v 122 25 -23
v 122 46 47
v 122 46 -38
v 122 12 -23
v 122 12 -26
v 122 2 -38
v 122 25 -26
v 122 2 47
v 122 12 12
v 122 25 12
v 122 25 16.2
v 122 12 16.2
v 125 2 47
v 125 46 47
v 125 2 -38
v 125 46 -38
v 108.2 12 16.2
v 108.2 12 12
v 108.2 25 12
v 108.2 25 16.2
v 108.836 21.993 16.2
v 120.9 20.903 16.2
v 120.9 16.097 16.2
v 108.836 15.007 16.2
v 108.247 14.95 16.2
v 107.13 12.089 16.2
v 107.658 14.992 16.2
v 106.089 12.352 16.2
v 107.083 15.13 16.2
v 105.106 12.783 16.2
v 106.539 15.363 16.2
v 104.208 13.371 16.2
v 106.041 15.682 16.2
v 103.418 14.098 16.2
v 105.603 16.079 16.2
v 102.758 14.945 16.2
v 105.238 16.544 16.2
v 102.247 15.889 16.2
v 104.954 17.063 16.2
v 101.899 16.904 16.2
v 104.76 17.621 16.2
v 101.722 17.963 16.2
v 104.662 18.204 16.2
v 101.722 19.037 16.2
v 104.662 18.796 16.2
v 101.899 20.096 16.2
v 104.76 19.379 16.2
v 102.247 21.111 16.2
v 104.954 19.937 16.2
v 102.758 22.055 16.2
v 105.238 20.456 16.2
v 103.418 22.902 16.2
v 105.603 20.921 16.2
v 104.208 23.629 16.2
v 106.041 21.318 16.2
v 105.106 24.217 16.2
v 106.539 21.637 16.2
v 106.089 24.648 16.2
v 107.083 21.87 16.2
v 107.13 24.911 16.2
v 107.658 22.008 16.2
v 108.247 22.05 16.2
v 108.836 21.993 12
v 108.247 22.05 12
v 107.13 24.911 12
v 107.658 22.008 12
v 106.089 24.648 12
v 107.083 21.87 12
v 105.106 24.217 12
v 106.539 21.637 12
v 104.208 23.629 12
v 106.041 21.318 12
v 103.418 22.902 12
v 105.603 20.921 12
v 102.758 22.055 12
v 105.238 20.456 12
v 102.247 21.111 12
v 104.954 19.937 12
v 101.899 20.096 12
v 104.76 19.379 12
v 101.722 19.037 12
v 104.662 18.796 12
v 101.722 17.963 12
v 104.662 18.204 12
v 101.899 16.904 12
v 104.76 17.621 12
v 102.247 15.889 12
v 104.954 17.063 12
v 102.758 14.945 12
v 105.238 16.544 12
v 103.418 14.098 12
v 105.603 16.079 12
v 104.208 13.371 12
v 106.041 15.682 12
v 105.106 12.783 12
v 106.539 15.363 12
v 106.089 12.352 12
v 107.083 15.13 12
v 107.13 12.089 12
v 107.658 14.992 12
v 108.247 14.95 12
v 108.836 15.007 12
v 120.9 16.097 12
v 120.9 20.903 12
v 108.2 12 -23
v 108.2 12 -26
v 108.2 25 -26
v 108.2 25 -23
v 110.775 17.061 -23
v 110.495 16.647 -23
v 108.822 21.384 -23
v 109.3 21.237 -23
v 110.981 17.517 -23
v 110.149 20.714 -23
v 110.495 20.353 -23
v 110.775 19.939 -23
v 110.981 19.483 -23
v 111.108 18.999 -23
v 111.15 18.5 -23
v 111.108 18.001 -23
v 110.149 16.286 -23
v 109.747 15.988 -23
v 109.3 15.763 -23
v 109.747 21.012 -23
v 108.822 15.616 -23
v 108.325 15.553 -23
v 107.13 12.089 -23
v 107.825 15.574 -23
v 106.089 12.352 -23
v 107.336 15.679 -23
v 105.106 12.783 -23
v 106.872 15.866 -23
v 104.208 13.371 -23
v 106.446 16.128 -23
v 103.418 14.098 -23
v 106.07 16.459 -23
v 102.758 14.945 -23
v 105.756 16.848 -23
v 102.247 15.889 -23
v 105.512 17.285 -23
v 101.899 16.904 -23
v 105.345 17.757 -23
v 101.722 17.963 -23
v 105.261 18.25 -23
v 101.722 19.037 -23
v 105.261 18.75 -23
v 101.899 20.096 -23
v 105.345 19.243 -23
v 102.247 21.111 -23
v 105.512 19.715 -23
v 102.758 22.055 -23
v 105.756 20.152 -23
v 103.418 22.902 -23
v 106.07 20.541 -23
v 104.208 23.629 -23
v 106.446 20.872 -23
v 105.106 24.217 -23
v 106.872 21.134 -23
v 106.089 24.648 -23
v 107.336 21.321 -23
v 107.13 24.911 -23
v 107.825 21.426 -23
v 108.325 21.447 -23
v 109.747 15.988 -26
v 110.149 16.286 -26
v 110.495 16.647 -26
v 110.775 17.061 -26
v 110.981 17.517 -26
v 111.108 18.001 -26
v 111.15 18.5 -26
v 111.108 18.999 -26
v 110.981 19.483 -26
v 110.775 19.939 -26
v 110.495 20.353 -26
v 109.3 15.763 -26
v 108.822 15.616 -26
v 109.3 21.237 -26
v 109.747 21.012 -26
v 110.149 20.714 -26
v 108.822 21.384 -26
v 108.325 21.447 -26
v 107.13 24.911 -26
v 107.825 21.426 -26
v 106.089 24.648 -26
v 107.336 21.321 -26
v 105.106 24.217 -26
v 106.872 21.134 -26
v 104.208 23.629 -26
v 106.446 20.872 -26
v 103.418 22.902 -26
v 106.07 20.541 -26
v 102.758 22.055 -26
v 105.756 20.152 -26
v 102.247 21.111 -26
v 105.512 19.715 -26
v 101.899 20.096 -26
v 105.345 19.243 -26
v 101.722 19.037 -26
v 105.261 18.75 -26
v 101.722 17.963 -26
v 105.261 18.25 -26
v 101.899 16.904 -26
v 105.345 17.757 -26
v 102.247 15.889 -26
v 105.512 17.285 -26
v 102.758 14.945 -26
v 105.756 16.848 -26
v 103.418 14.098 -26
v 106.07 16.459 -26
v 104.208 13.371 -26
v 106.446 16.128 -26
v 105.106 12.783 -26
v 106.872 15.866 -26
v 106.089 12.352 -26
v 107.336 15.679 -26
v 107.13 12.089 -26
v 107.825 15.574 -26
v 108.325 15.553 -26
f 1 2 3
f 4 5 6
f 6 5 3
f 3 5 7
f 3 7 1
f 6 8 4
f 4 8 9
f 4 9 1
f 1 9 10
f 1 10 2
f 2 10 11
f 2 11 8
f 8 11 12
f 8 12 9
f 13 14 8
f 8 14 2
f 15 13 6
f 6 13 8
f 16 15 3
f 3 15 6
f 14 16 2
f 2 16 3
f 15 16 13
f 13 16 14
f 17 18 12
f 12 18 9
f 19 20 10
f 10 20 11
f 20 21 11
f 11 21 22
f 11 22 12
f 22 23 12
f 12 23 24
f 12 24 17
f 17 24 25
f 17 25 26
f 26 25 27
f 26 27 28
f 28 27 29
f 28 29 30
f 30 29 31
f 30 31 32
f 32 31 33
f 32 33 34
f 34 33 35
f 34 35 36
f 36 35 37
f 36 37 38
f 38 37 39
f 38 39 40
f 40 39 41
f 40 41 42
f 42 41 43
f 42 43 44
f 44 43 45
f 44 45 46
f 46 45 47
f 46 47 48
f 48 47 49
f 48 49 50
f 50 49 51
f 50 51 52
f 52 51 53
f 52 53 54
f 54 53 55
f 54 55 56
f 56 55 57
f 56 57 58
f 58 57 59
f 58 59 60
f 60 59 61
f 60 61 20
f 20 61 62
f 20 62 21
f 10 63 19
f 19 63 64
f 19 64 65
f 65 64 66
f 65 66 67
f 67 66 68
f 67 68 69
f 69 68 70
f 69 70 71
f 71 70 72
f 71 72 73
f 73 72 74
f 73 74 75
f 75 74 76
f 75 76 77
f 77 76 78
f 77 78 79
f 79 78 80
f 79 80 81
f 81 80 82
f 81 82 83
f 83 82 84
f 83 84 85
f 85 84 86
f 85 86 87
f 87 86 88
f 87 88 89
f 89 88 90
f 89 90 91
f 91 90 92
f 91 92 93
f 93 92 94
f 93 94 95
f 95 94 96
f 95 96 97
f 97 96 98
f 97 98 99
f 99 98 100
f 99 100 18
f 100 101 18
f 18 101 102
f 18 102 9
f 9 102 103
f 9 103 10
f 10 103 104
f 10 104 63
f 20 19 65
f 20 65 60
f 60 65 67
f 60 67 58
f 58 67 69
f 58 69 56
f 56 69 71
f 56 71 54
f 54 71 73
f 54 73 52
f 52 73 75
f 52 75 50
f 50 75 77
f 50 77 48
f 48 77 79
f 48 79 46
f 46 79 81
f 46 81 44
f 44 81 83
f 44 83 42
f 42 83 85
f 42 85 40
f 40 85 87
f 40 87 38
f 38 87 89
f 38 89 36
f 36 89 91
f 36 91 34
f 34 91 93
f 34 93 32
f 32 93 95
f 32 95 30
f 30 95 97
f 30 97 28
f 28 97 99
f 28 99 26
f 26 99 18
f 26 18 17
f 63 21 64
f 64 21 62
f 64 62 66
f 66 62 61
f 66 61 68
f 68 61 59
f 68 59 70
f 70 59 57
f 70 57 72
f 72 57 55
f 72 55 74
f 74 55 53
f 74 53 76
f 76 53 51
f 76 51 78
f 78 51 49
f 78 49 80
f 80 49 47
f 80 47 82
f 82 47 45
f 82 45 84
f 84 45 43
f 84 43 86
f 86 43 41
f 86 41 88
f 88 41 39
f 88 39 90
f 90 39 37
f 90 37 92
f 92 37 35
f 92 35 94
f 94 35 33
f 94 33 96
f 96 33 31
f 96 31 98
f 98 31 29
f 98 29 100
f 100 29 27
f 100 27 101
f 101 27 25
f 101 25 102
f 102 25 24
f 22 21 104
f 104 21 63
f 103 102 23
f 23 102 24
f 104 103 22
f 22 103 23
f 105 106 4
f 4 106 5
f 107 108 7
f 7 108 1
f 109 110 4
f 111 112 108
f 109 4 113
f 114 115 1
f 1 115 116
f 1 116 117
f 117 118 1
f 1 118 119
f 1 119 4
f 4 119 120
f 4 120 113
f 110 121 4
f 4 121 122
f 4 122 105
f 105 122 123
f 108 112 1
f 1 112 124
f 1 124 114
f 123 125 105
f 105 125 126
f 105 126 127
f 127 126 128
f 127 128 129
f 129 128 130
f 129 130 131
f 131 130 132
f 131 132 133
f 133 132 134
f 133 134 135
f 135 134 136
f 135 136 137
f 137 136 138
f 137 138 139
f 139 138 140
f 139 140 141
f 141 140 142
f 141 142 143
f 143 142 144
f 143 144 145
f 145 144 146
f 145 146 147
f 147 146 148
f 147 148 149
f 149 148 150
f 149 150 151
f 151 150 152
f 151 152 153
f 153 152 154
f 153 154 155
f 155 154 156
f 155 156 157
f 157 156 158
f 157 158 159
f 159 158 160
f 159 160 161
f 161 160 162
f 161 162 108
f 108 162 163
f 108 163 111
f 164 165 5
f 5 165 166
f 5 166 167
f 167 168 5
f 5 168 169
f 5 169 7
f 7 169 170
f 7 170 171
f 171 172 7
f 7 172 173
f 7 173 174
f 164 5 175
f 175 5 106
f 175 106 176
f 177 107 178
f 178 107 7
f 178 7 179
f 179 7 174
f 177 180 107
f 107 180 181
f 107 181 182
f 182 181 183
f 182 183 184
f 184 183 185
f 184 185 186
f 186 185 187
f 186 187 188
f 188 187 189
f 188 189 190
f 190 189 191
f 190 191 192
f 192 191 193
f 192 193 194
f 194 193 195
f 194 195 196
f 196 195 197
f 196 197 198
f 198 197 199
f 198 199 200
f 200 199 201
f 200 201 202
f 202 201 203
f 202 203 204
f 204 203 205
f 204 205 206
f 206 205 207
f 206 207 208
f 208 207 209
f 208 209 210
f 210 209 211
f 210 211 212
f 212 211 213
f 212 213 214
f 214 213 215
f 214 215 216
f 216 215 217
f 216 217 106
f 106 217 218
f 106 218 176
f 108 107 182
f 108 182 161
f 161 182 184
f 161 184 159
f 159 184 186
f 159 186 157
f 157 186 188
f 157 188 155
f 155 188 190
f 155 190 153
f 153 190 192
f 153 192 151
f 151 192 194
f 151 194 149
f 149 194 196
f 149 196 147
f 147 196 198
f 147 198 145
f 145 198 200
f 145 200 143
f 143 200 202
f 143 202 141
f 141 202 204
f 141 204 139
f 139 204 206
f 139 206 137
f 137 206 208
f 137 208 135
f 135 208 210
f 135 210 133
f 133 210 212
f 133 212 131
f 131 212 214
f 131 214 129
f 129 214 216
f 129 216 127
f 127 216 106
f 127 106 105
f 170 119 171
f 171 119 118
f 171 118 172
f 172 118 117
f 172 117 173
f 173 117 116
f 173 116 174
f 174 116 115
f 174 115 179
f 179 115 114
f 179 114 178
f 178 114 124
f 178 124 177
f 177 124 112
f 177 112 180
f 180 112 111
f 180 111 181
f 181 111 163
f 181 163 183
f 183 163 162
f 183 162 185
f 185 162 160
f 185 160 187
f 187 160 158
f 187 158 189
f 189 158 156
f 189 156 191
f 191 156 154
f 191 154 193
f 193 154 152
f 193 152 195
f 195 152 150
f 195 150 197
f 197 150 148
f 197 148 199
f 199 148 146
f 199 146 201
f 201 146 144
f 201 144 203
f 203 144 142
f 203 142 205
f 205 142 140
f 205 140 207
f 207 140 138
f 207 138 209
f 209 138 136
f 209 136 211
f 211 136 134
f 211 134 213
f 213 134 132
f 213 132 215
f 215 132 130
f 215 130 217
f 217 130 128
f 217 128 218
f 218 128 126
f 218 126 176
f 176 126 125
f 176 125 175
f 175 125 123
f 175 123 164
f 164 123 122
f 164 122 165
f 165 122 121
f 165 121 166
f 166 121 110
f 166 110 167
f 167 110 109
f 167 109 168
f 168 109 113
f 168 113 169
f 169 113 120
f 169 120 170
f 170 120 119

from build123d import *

# Parameters (mm, degrees)
BOSS_EXTRUDE1_START = 123.5
SKETCH1_W           = 85
SKETCH1_H           = 44
BOSS_EXTRUDE1_DEPTH = 1.5
BOSS_EXTRUDE2_START = 14.1
SKETCH2_R           = 6.5
BOSS_EXTRUDE2_DEPTH = 2.1
BOSS_EXTRUDE3_START = 14.1
SKETCH3_W           = 14.3
SKETCH3_H           = 13
BOSS_EXTRUDE3_DEPTH = 2.1
CUT_EXTRUDE1_START  = 14.1
SKETCH4_R           = 3.55
CUT_EXTRUDE1_DEPTH  = 2.1
CUT_EXTRUDE2_START  = 14.1
CUT_EXTRUDE2_DEPTH  = 2.1
BOSS_EXTRUDE4_START = -24.5
SKETCH6_R           = 6.5
BOSS_EXTRUDE4_DEPTH = 1.5
BOSS_EXTRUDE5_START = -24.5
SKETCH7_W           = 14.3
SKETCH7_H           = 13
BOSS_EXTRUDE5_DEPTH = 1.5
CUT_EXTRUDE3_START  = -24.5
SKETCH8_R           = 2.95
CUT_EXTRUDE3_DEPTH  = 1.5


with BuildPart() as part:
    # Sketch1 → Boss-Extrude1 (new, symmetric)
    with BuildSketch(Plane(origin=(0, 0, 0), x_dir=(0, 0, -1), z_dir=(1, 0, 0)).offset(BOSS_EXTRUDE1_START)):
        with Locations((-4.5, 24)):
            Rectangle(SKETCH1_W, SKETCH1_H)
    extrude(amount=BOSS_EXTRUDE1_DEPTH, both=True)



with BuildPart() as body_2:
    # Sketch2 → Boss-Extrude2 (new, symmetric)
    with BuildSketch(Plane.XY.offset(BOSS_EXTRUDE2_START)):
        with Locations((108.2, 18.5)):
            Circle(SKETCH2_R)
    extrude(amount=BOSS_EXTRUDE2_DEPTH, both=True)


with BuildPart() as part_1:
    add(part.part)

    add(body_2.part)  # Boss-Extrude3 merges body 2
    # Sketch3 → Boss-Extrude3 (add, symmetric)
    with BuildSketch(Plane.XY.offset(BOSS_EXTRUDE3_START)):
        with Locations((115.35, 18.5)):
            Rectangle(SKETCH3_W, SKETCH3_H)
    extrude(amount=BOSS_EXTRUDE3_DEPTH, both=True)

    # Sketch4 → Cut-Extrude1 (cut, symmetric)
    with BuildSketch(Plane.XY.offset(CUT_EXTRUDE1_START)):
        with Locations((108.2, 18.5)):
            Circle(SKETCH4_R)
    extrude(amount=CUT_EXTRUDE1_DEPTH, both=True, mode=Mode.SUBTRACT)

    # Sketch5 → Cut-Extrude2 (cut, symmetric)
    with BuildSketch(Plane.XY.offset(CUT_EXTRUDE2_START)):
        Polygon((108.2, 14.95), (120.9, 16.096718595), (120.9, 20.903281405), (108.2, 22.05), align=None)
    extrude(amount=CUT_EXTRUDE2_DEPTH, both=True, mode=Mode.SUBTRACT)



with BuildPart() as body_2_2:
    # Sketch6 → Boss-Extrude4 (new, symmetric)
    with BuildSketch(Plane.XY.offset(BOSS_EXTRUDE4_START)):
        with Locations(Location((108.2, 18.5, 0), (0, 0, 180))):
            Circle(SKETCH6_R)
    extrude(amount=BOSS_EXTRUDE4_DEPTH, both=True)


with BuildPart() as part_2:
    add(part_1.part)

    add(body_2_2.part)  # Boss-Extrude5 merges body 2 2
    # Sketch7 → Boss-Extrude5 (add, symmetric)
    with BuildSketch(Plane.XY.offset(BOSS_EXTRUDE5_START)):
        with Locations((115.35, 18.5)):
            Rectangle(SKETCH7_W, SKETCH7_H)
    extrude(amount=BOSS_EXTRUDE5_DEPTH, both=True)

    # Sketch8 → Cut-Extrude3 (cut, symmetric)
    with BuildSketch(Plane.XY.offset(CUT_EXTRUDE3_START)):
        with Locations((108.2, 18.5)):
            Circle(SKETCH8_R)
    extrude(amount=CUT_EXTRUDE3_DEPTH, both=True, mode=Mode.SUBTRACT)


solid = part_2.part
